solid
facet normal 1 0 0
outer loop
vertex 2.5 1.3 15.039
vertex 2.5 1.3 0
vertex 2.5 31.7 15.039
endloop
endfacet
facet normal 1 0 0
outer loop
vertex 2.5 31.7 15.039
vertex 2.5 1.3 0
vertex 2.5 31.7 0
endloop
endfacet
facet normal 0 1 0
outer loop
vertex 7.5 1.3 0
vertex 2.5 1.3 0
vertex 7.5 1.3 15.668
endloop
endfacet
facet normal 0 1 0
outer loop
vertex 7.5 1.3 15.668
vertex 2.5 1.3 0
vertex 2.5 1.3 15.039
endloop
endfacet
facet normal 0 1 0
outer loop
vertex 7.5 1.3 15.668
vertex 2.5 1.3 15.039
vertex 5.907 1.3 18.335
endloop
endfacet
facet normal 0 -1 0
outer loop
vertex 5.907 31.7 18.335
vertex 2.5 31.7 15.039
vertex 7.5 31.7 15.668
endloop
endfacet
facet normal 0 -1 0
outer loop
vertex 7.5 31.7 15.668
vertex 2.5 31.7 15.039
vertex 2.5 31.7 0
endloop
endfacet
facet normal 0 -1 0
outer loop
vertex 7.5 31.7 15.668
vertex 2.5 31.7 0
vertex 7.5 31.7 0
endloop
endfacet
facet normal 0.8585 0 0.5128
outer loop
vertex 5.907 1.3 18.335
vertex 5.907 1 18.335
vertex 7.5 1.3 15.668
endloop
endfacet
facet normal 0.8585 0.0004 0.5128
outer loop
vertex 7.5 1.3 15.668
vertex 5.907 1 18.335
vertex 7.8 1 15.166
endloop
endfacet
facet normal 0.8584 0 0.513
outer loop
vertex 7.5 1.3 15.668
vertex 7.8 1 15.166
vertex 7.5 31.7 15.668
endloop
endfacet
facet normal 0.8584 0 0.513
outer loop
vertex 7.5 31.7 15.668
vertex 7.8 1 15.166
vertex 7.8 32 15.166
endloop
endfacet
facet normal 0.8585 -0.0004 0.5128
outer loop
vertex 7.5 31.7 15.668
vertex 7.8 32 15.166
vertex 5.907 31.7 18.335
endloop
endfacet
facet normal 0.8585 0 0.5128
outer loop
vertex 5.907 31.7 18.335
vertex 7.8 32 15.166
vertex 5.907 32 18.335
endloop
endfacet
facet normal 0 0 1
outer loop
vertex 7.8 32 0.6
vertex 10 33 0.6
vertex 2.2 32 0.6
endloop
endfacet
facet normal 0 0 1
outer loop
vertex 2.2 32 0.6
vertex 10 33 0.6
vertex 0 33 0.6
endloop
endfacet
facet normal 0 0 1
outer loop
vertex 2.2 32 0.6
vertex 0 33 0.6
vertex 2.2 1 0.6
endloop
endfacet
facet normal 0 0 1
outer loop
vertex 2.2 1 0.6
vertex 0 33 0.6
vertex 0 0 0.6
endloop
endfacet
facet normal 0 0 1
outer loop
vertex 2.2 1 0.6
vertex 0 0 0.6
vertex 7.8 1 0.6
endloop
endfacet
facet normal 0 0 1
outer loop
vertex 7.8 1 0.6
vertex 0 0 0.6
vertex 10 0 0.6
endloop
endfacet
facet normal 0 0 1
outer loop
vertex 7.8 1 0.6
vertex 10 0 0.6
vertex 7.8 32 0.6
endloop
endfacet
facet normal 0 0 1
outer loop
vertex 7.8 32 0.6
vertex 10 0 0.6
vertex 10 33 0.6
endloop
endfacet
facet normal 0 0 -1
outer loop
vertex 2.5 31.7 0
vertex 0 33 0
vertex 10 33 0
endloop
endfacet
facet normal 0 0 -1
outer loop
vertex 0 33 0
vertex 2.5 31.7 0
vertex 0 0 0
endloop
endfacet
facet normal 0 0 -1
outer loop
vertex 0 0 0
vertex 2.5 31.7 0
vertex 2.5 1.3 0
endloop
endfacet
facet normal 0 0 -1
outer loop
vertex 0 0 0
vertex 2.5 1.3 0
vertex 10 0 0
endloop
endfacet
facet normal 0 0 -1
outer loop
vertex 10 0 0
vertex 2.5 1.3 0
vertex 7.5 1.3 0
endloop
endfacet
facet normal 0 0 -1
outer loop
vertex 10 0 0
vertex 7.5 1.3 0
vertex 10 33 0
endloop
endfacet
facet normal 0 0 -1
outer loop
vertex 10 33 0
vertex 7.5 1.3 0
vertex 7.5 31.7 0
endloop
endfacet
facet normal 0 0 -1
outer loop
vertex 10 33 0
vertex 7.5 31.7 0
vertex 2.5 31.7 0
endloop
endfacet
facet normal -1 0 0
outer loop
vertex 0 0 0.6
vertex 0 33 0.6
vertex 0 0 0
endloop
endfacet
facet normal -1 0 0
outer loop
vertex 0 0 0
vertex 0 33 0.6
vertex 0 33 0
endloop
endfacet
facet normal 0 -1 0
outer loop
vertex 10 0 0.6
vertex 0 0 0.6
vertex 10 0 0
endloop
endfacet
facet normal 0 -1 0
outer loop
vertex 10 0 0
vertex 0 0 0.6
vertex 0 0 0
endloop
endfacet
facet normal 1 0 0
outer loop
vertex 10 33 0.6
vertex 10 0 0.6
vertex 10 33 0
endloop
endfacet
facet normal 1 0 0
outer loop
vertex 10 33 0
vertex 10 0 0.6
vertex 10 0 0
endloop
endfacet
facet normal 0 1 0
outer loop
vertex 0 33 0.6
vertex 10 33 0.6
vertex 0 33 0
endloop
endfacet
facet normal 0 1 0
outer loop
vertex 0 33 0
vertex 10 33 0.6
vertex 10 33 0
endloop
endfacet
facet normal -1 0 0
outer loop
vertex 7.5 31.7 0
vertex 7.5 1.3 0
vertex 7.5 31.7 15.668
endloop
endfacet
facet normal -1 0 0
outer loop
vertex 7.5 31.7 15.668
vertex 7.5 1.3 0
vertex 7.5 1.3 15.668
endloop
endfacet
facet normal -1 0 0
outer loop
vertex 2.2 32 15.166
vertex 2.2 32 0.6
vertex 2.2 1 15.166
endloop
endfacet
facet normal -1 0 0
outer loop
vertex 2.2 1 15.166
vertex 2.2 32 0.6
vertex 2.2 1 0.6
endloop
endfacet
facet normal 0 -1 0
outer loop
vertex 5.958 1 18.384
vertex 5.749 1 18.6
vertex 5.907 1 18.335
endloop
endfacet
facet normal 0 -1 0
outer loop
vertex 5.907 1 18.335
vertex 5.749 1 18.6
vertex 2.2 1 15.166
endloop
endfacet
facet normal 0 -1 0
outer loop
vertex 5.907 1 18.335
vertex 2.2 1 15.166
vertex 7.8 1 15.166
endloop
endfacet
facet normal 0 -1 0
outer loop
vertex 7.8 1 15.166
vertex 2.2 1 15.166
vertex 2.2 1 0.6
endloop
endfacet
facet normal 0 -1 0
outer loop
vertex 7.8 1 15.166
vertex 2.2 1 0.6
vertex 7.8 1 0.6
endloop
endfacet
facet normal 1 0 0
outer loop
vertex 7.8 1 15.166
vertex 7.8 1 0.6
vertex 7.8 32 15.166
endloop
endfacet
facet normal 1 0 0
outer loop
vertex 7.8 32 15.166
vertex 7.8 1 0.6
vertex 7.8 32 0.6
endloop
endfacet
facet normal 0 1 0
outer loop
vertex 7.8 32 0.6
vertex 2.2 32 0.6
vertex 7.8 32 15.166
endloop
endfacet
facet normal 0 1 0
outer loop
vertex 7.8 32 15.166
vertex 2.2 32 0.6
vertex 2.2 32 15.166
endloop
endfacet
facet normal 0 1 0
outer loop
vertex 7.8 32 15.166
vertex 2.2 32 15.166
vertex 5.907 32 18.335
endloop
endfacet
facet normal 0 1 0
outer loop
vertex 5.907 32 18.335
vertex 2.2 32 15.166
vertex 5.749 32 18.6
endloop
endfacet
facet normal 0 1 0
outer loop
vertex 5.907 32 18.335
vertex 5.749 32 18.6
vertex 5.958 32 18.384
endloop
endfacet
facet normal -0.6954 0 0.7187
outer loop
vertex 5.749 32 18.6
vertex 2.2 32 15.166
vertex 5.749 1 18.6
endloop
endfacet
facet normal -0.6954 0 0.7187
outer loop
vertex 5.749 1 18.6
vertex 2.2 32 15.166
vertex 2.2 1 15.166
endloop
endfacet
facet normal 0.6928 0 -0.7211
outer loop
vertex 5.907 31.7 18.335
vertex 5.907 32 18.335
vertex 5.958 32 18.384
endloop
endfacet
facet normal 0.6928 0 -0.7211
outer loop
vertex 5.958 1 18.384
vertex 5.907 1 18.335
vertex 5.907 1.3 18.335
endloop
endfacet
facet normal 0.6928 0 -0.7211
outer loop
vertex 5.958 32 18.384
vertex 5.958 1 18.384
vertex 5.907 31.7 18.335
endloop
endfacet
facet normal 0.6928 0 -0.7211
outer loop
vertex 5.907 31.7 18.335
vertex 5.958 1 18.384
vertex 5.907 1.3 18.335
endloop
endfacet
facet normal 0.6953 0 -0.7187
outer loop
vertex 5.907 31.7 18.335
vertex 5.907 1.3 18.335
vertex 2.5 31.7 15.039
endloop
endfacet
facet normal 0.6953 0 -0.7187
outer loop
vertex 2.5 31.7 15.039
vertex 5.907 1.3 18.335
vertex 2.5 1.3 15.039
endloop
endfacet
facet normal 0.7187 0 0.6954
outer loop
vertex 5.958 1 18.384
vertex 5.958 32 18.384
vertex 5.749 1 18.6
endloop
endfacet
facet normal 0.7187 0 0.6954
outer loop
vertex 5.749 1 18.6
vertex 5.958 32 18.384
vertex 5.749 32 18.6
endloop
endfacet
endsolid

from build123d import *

# Parameters (mm, degrees)
SKETCH_1_W          = 10
SKETCH_1_H          = 33
SKETCH_1_W_2        = 5
SKETCH_1_H_2        = 30.4
EXTRUDE_1_DEPTH     = 0.6
SKETCH_2_W          = 5.6
SKETCH_2_H          = 31
SKETCH_2_W_2        = 5
SKETCH_2_H_2        = 30.4
EXTRUDE_2_DEPTH     = 18
CUT_EXTRUDE_1_DEPTH = 39.340057381
SKETCH_6_W          = 4.938455529
SKETCH_6_H          = 31
EXTRUDE_5_DEPTH     = 0.3


with BuildPart() as part:
    # 草图1 → 凸台-拉伸1 (new body)
    with BuildSketch(Plane.XY):
        with Locations((5, 16.5)):
            Rectangle(SKETCH_1_W, SKETCH_1_H)
        with Locations((5, 16.5)):
            Rectangle(SKETCH_1_W_2, SKETCH_1_H_2, mode=Mode.SUBTRACT)
    extrude(amount=EXTRUDE_1_DEPTH)

    # 草图2 → 凸台-拉伸2 (add)
    with BuildSketch(Plane.XY.offset(0.6)):
        with Locations((5, 16.5)):
            Rectangle(SKETCH_2_W, SKETCH_2_H)
        with Locations((5, 16.5)):
            Rectangle(SKETCH_2_W_2, SKETCH_2_H_2, mode=Mode.SUBTRACT)
    extrude(amount=EXTRUDE_2_DEPTH)

    # 草图5 → 切除-拉伸1 (cut, through all)
    with BuildSketch(Plane(origin=(0, 32, 0), x_dir=(1, 0, 0), z_dir=(0, 1, 0))):
        Polygon((2.2, -15.165872509), (5.748959197, -18.6), (7.8, -15.165872509), (7.8, -19.376577353), (2.2, -19.376577353), align=None)
    extrude(amount=-CUT_EXTRUDE_1_DEPTH, mode=Mode.SUBTRACT)

    # 草图6 → 凸台-拉伸5 (add)
    with BuildSketch(Plane(origin=(-6.515003899, 0, 6.732855162), x_dir=(0.7186374720968006, 0, 0.6953849176523174), z_dir=(-0.6953849176523174, 0, 0.7186374720968006))):
        with Locations((14.596349209, 16.5)):
            Rectangle(SKETCH_6_W, SKETCH_6_H)
    extrude(amount=-EXTRUDE_5_DEPTH)


solid = part.part
